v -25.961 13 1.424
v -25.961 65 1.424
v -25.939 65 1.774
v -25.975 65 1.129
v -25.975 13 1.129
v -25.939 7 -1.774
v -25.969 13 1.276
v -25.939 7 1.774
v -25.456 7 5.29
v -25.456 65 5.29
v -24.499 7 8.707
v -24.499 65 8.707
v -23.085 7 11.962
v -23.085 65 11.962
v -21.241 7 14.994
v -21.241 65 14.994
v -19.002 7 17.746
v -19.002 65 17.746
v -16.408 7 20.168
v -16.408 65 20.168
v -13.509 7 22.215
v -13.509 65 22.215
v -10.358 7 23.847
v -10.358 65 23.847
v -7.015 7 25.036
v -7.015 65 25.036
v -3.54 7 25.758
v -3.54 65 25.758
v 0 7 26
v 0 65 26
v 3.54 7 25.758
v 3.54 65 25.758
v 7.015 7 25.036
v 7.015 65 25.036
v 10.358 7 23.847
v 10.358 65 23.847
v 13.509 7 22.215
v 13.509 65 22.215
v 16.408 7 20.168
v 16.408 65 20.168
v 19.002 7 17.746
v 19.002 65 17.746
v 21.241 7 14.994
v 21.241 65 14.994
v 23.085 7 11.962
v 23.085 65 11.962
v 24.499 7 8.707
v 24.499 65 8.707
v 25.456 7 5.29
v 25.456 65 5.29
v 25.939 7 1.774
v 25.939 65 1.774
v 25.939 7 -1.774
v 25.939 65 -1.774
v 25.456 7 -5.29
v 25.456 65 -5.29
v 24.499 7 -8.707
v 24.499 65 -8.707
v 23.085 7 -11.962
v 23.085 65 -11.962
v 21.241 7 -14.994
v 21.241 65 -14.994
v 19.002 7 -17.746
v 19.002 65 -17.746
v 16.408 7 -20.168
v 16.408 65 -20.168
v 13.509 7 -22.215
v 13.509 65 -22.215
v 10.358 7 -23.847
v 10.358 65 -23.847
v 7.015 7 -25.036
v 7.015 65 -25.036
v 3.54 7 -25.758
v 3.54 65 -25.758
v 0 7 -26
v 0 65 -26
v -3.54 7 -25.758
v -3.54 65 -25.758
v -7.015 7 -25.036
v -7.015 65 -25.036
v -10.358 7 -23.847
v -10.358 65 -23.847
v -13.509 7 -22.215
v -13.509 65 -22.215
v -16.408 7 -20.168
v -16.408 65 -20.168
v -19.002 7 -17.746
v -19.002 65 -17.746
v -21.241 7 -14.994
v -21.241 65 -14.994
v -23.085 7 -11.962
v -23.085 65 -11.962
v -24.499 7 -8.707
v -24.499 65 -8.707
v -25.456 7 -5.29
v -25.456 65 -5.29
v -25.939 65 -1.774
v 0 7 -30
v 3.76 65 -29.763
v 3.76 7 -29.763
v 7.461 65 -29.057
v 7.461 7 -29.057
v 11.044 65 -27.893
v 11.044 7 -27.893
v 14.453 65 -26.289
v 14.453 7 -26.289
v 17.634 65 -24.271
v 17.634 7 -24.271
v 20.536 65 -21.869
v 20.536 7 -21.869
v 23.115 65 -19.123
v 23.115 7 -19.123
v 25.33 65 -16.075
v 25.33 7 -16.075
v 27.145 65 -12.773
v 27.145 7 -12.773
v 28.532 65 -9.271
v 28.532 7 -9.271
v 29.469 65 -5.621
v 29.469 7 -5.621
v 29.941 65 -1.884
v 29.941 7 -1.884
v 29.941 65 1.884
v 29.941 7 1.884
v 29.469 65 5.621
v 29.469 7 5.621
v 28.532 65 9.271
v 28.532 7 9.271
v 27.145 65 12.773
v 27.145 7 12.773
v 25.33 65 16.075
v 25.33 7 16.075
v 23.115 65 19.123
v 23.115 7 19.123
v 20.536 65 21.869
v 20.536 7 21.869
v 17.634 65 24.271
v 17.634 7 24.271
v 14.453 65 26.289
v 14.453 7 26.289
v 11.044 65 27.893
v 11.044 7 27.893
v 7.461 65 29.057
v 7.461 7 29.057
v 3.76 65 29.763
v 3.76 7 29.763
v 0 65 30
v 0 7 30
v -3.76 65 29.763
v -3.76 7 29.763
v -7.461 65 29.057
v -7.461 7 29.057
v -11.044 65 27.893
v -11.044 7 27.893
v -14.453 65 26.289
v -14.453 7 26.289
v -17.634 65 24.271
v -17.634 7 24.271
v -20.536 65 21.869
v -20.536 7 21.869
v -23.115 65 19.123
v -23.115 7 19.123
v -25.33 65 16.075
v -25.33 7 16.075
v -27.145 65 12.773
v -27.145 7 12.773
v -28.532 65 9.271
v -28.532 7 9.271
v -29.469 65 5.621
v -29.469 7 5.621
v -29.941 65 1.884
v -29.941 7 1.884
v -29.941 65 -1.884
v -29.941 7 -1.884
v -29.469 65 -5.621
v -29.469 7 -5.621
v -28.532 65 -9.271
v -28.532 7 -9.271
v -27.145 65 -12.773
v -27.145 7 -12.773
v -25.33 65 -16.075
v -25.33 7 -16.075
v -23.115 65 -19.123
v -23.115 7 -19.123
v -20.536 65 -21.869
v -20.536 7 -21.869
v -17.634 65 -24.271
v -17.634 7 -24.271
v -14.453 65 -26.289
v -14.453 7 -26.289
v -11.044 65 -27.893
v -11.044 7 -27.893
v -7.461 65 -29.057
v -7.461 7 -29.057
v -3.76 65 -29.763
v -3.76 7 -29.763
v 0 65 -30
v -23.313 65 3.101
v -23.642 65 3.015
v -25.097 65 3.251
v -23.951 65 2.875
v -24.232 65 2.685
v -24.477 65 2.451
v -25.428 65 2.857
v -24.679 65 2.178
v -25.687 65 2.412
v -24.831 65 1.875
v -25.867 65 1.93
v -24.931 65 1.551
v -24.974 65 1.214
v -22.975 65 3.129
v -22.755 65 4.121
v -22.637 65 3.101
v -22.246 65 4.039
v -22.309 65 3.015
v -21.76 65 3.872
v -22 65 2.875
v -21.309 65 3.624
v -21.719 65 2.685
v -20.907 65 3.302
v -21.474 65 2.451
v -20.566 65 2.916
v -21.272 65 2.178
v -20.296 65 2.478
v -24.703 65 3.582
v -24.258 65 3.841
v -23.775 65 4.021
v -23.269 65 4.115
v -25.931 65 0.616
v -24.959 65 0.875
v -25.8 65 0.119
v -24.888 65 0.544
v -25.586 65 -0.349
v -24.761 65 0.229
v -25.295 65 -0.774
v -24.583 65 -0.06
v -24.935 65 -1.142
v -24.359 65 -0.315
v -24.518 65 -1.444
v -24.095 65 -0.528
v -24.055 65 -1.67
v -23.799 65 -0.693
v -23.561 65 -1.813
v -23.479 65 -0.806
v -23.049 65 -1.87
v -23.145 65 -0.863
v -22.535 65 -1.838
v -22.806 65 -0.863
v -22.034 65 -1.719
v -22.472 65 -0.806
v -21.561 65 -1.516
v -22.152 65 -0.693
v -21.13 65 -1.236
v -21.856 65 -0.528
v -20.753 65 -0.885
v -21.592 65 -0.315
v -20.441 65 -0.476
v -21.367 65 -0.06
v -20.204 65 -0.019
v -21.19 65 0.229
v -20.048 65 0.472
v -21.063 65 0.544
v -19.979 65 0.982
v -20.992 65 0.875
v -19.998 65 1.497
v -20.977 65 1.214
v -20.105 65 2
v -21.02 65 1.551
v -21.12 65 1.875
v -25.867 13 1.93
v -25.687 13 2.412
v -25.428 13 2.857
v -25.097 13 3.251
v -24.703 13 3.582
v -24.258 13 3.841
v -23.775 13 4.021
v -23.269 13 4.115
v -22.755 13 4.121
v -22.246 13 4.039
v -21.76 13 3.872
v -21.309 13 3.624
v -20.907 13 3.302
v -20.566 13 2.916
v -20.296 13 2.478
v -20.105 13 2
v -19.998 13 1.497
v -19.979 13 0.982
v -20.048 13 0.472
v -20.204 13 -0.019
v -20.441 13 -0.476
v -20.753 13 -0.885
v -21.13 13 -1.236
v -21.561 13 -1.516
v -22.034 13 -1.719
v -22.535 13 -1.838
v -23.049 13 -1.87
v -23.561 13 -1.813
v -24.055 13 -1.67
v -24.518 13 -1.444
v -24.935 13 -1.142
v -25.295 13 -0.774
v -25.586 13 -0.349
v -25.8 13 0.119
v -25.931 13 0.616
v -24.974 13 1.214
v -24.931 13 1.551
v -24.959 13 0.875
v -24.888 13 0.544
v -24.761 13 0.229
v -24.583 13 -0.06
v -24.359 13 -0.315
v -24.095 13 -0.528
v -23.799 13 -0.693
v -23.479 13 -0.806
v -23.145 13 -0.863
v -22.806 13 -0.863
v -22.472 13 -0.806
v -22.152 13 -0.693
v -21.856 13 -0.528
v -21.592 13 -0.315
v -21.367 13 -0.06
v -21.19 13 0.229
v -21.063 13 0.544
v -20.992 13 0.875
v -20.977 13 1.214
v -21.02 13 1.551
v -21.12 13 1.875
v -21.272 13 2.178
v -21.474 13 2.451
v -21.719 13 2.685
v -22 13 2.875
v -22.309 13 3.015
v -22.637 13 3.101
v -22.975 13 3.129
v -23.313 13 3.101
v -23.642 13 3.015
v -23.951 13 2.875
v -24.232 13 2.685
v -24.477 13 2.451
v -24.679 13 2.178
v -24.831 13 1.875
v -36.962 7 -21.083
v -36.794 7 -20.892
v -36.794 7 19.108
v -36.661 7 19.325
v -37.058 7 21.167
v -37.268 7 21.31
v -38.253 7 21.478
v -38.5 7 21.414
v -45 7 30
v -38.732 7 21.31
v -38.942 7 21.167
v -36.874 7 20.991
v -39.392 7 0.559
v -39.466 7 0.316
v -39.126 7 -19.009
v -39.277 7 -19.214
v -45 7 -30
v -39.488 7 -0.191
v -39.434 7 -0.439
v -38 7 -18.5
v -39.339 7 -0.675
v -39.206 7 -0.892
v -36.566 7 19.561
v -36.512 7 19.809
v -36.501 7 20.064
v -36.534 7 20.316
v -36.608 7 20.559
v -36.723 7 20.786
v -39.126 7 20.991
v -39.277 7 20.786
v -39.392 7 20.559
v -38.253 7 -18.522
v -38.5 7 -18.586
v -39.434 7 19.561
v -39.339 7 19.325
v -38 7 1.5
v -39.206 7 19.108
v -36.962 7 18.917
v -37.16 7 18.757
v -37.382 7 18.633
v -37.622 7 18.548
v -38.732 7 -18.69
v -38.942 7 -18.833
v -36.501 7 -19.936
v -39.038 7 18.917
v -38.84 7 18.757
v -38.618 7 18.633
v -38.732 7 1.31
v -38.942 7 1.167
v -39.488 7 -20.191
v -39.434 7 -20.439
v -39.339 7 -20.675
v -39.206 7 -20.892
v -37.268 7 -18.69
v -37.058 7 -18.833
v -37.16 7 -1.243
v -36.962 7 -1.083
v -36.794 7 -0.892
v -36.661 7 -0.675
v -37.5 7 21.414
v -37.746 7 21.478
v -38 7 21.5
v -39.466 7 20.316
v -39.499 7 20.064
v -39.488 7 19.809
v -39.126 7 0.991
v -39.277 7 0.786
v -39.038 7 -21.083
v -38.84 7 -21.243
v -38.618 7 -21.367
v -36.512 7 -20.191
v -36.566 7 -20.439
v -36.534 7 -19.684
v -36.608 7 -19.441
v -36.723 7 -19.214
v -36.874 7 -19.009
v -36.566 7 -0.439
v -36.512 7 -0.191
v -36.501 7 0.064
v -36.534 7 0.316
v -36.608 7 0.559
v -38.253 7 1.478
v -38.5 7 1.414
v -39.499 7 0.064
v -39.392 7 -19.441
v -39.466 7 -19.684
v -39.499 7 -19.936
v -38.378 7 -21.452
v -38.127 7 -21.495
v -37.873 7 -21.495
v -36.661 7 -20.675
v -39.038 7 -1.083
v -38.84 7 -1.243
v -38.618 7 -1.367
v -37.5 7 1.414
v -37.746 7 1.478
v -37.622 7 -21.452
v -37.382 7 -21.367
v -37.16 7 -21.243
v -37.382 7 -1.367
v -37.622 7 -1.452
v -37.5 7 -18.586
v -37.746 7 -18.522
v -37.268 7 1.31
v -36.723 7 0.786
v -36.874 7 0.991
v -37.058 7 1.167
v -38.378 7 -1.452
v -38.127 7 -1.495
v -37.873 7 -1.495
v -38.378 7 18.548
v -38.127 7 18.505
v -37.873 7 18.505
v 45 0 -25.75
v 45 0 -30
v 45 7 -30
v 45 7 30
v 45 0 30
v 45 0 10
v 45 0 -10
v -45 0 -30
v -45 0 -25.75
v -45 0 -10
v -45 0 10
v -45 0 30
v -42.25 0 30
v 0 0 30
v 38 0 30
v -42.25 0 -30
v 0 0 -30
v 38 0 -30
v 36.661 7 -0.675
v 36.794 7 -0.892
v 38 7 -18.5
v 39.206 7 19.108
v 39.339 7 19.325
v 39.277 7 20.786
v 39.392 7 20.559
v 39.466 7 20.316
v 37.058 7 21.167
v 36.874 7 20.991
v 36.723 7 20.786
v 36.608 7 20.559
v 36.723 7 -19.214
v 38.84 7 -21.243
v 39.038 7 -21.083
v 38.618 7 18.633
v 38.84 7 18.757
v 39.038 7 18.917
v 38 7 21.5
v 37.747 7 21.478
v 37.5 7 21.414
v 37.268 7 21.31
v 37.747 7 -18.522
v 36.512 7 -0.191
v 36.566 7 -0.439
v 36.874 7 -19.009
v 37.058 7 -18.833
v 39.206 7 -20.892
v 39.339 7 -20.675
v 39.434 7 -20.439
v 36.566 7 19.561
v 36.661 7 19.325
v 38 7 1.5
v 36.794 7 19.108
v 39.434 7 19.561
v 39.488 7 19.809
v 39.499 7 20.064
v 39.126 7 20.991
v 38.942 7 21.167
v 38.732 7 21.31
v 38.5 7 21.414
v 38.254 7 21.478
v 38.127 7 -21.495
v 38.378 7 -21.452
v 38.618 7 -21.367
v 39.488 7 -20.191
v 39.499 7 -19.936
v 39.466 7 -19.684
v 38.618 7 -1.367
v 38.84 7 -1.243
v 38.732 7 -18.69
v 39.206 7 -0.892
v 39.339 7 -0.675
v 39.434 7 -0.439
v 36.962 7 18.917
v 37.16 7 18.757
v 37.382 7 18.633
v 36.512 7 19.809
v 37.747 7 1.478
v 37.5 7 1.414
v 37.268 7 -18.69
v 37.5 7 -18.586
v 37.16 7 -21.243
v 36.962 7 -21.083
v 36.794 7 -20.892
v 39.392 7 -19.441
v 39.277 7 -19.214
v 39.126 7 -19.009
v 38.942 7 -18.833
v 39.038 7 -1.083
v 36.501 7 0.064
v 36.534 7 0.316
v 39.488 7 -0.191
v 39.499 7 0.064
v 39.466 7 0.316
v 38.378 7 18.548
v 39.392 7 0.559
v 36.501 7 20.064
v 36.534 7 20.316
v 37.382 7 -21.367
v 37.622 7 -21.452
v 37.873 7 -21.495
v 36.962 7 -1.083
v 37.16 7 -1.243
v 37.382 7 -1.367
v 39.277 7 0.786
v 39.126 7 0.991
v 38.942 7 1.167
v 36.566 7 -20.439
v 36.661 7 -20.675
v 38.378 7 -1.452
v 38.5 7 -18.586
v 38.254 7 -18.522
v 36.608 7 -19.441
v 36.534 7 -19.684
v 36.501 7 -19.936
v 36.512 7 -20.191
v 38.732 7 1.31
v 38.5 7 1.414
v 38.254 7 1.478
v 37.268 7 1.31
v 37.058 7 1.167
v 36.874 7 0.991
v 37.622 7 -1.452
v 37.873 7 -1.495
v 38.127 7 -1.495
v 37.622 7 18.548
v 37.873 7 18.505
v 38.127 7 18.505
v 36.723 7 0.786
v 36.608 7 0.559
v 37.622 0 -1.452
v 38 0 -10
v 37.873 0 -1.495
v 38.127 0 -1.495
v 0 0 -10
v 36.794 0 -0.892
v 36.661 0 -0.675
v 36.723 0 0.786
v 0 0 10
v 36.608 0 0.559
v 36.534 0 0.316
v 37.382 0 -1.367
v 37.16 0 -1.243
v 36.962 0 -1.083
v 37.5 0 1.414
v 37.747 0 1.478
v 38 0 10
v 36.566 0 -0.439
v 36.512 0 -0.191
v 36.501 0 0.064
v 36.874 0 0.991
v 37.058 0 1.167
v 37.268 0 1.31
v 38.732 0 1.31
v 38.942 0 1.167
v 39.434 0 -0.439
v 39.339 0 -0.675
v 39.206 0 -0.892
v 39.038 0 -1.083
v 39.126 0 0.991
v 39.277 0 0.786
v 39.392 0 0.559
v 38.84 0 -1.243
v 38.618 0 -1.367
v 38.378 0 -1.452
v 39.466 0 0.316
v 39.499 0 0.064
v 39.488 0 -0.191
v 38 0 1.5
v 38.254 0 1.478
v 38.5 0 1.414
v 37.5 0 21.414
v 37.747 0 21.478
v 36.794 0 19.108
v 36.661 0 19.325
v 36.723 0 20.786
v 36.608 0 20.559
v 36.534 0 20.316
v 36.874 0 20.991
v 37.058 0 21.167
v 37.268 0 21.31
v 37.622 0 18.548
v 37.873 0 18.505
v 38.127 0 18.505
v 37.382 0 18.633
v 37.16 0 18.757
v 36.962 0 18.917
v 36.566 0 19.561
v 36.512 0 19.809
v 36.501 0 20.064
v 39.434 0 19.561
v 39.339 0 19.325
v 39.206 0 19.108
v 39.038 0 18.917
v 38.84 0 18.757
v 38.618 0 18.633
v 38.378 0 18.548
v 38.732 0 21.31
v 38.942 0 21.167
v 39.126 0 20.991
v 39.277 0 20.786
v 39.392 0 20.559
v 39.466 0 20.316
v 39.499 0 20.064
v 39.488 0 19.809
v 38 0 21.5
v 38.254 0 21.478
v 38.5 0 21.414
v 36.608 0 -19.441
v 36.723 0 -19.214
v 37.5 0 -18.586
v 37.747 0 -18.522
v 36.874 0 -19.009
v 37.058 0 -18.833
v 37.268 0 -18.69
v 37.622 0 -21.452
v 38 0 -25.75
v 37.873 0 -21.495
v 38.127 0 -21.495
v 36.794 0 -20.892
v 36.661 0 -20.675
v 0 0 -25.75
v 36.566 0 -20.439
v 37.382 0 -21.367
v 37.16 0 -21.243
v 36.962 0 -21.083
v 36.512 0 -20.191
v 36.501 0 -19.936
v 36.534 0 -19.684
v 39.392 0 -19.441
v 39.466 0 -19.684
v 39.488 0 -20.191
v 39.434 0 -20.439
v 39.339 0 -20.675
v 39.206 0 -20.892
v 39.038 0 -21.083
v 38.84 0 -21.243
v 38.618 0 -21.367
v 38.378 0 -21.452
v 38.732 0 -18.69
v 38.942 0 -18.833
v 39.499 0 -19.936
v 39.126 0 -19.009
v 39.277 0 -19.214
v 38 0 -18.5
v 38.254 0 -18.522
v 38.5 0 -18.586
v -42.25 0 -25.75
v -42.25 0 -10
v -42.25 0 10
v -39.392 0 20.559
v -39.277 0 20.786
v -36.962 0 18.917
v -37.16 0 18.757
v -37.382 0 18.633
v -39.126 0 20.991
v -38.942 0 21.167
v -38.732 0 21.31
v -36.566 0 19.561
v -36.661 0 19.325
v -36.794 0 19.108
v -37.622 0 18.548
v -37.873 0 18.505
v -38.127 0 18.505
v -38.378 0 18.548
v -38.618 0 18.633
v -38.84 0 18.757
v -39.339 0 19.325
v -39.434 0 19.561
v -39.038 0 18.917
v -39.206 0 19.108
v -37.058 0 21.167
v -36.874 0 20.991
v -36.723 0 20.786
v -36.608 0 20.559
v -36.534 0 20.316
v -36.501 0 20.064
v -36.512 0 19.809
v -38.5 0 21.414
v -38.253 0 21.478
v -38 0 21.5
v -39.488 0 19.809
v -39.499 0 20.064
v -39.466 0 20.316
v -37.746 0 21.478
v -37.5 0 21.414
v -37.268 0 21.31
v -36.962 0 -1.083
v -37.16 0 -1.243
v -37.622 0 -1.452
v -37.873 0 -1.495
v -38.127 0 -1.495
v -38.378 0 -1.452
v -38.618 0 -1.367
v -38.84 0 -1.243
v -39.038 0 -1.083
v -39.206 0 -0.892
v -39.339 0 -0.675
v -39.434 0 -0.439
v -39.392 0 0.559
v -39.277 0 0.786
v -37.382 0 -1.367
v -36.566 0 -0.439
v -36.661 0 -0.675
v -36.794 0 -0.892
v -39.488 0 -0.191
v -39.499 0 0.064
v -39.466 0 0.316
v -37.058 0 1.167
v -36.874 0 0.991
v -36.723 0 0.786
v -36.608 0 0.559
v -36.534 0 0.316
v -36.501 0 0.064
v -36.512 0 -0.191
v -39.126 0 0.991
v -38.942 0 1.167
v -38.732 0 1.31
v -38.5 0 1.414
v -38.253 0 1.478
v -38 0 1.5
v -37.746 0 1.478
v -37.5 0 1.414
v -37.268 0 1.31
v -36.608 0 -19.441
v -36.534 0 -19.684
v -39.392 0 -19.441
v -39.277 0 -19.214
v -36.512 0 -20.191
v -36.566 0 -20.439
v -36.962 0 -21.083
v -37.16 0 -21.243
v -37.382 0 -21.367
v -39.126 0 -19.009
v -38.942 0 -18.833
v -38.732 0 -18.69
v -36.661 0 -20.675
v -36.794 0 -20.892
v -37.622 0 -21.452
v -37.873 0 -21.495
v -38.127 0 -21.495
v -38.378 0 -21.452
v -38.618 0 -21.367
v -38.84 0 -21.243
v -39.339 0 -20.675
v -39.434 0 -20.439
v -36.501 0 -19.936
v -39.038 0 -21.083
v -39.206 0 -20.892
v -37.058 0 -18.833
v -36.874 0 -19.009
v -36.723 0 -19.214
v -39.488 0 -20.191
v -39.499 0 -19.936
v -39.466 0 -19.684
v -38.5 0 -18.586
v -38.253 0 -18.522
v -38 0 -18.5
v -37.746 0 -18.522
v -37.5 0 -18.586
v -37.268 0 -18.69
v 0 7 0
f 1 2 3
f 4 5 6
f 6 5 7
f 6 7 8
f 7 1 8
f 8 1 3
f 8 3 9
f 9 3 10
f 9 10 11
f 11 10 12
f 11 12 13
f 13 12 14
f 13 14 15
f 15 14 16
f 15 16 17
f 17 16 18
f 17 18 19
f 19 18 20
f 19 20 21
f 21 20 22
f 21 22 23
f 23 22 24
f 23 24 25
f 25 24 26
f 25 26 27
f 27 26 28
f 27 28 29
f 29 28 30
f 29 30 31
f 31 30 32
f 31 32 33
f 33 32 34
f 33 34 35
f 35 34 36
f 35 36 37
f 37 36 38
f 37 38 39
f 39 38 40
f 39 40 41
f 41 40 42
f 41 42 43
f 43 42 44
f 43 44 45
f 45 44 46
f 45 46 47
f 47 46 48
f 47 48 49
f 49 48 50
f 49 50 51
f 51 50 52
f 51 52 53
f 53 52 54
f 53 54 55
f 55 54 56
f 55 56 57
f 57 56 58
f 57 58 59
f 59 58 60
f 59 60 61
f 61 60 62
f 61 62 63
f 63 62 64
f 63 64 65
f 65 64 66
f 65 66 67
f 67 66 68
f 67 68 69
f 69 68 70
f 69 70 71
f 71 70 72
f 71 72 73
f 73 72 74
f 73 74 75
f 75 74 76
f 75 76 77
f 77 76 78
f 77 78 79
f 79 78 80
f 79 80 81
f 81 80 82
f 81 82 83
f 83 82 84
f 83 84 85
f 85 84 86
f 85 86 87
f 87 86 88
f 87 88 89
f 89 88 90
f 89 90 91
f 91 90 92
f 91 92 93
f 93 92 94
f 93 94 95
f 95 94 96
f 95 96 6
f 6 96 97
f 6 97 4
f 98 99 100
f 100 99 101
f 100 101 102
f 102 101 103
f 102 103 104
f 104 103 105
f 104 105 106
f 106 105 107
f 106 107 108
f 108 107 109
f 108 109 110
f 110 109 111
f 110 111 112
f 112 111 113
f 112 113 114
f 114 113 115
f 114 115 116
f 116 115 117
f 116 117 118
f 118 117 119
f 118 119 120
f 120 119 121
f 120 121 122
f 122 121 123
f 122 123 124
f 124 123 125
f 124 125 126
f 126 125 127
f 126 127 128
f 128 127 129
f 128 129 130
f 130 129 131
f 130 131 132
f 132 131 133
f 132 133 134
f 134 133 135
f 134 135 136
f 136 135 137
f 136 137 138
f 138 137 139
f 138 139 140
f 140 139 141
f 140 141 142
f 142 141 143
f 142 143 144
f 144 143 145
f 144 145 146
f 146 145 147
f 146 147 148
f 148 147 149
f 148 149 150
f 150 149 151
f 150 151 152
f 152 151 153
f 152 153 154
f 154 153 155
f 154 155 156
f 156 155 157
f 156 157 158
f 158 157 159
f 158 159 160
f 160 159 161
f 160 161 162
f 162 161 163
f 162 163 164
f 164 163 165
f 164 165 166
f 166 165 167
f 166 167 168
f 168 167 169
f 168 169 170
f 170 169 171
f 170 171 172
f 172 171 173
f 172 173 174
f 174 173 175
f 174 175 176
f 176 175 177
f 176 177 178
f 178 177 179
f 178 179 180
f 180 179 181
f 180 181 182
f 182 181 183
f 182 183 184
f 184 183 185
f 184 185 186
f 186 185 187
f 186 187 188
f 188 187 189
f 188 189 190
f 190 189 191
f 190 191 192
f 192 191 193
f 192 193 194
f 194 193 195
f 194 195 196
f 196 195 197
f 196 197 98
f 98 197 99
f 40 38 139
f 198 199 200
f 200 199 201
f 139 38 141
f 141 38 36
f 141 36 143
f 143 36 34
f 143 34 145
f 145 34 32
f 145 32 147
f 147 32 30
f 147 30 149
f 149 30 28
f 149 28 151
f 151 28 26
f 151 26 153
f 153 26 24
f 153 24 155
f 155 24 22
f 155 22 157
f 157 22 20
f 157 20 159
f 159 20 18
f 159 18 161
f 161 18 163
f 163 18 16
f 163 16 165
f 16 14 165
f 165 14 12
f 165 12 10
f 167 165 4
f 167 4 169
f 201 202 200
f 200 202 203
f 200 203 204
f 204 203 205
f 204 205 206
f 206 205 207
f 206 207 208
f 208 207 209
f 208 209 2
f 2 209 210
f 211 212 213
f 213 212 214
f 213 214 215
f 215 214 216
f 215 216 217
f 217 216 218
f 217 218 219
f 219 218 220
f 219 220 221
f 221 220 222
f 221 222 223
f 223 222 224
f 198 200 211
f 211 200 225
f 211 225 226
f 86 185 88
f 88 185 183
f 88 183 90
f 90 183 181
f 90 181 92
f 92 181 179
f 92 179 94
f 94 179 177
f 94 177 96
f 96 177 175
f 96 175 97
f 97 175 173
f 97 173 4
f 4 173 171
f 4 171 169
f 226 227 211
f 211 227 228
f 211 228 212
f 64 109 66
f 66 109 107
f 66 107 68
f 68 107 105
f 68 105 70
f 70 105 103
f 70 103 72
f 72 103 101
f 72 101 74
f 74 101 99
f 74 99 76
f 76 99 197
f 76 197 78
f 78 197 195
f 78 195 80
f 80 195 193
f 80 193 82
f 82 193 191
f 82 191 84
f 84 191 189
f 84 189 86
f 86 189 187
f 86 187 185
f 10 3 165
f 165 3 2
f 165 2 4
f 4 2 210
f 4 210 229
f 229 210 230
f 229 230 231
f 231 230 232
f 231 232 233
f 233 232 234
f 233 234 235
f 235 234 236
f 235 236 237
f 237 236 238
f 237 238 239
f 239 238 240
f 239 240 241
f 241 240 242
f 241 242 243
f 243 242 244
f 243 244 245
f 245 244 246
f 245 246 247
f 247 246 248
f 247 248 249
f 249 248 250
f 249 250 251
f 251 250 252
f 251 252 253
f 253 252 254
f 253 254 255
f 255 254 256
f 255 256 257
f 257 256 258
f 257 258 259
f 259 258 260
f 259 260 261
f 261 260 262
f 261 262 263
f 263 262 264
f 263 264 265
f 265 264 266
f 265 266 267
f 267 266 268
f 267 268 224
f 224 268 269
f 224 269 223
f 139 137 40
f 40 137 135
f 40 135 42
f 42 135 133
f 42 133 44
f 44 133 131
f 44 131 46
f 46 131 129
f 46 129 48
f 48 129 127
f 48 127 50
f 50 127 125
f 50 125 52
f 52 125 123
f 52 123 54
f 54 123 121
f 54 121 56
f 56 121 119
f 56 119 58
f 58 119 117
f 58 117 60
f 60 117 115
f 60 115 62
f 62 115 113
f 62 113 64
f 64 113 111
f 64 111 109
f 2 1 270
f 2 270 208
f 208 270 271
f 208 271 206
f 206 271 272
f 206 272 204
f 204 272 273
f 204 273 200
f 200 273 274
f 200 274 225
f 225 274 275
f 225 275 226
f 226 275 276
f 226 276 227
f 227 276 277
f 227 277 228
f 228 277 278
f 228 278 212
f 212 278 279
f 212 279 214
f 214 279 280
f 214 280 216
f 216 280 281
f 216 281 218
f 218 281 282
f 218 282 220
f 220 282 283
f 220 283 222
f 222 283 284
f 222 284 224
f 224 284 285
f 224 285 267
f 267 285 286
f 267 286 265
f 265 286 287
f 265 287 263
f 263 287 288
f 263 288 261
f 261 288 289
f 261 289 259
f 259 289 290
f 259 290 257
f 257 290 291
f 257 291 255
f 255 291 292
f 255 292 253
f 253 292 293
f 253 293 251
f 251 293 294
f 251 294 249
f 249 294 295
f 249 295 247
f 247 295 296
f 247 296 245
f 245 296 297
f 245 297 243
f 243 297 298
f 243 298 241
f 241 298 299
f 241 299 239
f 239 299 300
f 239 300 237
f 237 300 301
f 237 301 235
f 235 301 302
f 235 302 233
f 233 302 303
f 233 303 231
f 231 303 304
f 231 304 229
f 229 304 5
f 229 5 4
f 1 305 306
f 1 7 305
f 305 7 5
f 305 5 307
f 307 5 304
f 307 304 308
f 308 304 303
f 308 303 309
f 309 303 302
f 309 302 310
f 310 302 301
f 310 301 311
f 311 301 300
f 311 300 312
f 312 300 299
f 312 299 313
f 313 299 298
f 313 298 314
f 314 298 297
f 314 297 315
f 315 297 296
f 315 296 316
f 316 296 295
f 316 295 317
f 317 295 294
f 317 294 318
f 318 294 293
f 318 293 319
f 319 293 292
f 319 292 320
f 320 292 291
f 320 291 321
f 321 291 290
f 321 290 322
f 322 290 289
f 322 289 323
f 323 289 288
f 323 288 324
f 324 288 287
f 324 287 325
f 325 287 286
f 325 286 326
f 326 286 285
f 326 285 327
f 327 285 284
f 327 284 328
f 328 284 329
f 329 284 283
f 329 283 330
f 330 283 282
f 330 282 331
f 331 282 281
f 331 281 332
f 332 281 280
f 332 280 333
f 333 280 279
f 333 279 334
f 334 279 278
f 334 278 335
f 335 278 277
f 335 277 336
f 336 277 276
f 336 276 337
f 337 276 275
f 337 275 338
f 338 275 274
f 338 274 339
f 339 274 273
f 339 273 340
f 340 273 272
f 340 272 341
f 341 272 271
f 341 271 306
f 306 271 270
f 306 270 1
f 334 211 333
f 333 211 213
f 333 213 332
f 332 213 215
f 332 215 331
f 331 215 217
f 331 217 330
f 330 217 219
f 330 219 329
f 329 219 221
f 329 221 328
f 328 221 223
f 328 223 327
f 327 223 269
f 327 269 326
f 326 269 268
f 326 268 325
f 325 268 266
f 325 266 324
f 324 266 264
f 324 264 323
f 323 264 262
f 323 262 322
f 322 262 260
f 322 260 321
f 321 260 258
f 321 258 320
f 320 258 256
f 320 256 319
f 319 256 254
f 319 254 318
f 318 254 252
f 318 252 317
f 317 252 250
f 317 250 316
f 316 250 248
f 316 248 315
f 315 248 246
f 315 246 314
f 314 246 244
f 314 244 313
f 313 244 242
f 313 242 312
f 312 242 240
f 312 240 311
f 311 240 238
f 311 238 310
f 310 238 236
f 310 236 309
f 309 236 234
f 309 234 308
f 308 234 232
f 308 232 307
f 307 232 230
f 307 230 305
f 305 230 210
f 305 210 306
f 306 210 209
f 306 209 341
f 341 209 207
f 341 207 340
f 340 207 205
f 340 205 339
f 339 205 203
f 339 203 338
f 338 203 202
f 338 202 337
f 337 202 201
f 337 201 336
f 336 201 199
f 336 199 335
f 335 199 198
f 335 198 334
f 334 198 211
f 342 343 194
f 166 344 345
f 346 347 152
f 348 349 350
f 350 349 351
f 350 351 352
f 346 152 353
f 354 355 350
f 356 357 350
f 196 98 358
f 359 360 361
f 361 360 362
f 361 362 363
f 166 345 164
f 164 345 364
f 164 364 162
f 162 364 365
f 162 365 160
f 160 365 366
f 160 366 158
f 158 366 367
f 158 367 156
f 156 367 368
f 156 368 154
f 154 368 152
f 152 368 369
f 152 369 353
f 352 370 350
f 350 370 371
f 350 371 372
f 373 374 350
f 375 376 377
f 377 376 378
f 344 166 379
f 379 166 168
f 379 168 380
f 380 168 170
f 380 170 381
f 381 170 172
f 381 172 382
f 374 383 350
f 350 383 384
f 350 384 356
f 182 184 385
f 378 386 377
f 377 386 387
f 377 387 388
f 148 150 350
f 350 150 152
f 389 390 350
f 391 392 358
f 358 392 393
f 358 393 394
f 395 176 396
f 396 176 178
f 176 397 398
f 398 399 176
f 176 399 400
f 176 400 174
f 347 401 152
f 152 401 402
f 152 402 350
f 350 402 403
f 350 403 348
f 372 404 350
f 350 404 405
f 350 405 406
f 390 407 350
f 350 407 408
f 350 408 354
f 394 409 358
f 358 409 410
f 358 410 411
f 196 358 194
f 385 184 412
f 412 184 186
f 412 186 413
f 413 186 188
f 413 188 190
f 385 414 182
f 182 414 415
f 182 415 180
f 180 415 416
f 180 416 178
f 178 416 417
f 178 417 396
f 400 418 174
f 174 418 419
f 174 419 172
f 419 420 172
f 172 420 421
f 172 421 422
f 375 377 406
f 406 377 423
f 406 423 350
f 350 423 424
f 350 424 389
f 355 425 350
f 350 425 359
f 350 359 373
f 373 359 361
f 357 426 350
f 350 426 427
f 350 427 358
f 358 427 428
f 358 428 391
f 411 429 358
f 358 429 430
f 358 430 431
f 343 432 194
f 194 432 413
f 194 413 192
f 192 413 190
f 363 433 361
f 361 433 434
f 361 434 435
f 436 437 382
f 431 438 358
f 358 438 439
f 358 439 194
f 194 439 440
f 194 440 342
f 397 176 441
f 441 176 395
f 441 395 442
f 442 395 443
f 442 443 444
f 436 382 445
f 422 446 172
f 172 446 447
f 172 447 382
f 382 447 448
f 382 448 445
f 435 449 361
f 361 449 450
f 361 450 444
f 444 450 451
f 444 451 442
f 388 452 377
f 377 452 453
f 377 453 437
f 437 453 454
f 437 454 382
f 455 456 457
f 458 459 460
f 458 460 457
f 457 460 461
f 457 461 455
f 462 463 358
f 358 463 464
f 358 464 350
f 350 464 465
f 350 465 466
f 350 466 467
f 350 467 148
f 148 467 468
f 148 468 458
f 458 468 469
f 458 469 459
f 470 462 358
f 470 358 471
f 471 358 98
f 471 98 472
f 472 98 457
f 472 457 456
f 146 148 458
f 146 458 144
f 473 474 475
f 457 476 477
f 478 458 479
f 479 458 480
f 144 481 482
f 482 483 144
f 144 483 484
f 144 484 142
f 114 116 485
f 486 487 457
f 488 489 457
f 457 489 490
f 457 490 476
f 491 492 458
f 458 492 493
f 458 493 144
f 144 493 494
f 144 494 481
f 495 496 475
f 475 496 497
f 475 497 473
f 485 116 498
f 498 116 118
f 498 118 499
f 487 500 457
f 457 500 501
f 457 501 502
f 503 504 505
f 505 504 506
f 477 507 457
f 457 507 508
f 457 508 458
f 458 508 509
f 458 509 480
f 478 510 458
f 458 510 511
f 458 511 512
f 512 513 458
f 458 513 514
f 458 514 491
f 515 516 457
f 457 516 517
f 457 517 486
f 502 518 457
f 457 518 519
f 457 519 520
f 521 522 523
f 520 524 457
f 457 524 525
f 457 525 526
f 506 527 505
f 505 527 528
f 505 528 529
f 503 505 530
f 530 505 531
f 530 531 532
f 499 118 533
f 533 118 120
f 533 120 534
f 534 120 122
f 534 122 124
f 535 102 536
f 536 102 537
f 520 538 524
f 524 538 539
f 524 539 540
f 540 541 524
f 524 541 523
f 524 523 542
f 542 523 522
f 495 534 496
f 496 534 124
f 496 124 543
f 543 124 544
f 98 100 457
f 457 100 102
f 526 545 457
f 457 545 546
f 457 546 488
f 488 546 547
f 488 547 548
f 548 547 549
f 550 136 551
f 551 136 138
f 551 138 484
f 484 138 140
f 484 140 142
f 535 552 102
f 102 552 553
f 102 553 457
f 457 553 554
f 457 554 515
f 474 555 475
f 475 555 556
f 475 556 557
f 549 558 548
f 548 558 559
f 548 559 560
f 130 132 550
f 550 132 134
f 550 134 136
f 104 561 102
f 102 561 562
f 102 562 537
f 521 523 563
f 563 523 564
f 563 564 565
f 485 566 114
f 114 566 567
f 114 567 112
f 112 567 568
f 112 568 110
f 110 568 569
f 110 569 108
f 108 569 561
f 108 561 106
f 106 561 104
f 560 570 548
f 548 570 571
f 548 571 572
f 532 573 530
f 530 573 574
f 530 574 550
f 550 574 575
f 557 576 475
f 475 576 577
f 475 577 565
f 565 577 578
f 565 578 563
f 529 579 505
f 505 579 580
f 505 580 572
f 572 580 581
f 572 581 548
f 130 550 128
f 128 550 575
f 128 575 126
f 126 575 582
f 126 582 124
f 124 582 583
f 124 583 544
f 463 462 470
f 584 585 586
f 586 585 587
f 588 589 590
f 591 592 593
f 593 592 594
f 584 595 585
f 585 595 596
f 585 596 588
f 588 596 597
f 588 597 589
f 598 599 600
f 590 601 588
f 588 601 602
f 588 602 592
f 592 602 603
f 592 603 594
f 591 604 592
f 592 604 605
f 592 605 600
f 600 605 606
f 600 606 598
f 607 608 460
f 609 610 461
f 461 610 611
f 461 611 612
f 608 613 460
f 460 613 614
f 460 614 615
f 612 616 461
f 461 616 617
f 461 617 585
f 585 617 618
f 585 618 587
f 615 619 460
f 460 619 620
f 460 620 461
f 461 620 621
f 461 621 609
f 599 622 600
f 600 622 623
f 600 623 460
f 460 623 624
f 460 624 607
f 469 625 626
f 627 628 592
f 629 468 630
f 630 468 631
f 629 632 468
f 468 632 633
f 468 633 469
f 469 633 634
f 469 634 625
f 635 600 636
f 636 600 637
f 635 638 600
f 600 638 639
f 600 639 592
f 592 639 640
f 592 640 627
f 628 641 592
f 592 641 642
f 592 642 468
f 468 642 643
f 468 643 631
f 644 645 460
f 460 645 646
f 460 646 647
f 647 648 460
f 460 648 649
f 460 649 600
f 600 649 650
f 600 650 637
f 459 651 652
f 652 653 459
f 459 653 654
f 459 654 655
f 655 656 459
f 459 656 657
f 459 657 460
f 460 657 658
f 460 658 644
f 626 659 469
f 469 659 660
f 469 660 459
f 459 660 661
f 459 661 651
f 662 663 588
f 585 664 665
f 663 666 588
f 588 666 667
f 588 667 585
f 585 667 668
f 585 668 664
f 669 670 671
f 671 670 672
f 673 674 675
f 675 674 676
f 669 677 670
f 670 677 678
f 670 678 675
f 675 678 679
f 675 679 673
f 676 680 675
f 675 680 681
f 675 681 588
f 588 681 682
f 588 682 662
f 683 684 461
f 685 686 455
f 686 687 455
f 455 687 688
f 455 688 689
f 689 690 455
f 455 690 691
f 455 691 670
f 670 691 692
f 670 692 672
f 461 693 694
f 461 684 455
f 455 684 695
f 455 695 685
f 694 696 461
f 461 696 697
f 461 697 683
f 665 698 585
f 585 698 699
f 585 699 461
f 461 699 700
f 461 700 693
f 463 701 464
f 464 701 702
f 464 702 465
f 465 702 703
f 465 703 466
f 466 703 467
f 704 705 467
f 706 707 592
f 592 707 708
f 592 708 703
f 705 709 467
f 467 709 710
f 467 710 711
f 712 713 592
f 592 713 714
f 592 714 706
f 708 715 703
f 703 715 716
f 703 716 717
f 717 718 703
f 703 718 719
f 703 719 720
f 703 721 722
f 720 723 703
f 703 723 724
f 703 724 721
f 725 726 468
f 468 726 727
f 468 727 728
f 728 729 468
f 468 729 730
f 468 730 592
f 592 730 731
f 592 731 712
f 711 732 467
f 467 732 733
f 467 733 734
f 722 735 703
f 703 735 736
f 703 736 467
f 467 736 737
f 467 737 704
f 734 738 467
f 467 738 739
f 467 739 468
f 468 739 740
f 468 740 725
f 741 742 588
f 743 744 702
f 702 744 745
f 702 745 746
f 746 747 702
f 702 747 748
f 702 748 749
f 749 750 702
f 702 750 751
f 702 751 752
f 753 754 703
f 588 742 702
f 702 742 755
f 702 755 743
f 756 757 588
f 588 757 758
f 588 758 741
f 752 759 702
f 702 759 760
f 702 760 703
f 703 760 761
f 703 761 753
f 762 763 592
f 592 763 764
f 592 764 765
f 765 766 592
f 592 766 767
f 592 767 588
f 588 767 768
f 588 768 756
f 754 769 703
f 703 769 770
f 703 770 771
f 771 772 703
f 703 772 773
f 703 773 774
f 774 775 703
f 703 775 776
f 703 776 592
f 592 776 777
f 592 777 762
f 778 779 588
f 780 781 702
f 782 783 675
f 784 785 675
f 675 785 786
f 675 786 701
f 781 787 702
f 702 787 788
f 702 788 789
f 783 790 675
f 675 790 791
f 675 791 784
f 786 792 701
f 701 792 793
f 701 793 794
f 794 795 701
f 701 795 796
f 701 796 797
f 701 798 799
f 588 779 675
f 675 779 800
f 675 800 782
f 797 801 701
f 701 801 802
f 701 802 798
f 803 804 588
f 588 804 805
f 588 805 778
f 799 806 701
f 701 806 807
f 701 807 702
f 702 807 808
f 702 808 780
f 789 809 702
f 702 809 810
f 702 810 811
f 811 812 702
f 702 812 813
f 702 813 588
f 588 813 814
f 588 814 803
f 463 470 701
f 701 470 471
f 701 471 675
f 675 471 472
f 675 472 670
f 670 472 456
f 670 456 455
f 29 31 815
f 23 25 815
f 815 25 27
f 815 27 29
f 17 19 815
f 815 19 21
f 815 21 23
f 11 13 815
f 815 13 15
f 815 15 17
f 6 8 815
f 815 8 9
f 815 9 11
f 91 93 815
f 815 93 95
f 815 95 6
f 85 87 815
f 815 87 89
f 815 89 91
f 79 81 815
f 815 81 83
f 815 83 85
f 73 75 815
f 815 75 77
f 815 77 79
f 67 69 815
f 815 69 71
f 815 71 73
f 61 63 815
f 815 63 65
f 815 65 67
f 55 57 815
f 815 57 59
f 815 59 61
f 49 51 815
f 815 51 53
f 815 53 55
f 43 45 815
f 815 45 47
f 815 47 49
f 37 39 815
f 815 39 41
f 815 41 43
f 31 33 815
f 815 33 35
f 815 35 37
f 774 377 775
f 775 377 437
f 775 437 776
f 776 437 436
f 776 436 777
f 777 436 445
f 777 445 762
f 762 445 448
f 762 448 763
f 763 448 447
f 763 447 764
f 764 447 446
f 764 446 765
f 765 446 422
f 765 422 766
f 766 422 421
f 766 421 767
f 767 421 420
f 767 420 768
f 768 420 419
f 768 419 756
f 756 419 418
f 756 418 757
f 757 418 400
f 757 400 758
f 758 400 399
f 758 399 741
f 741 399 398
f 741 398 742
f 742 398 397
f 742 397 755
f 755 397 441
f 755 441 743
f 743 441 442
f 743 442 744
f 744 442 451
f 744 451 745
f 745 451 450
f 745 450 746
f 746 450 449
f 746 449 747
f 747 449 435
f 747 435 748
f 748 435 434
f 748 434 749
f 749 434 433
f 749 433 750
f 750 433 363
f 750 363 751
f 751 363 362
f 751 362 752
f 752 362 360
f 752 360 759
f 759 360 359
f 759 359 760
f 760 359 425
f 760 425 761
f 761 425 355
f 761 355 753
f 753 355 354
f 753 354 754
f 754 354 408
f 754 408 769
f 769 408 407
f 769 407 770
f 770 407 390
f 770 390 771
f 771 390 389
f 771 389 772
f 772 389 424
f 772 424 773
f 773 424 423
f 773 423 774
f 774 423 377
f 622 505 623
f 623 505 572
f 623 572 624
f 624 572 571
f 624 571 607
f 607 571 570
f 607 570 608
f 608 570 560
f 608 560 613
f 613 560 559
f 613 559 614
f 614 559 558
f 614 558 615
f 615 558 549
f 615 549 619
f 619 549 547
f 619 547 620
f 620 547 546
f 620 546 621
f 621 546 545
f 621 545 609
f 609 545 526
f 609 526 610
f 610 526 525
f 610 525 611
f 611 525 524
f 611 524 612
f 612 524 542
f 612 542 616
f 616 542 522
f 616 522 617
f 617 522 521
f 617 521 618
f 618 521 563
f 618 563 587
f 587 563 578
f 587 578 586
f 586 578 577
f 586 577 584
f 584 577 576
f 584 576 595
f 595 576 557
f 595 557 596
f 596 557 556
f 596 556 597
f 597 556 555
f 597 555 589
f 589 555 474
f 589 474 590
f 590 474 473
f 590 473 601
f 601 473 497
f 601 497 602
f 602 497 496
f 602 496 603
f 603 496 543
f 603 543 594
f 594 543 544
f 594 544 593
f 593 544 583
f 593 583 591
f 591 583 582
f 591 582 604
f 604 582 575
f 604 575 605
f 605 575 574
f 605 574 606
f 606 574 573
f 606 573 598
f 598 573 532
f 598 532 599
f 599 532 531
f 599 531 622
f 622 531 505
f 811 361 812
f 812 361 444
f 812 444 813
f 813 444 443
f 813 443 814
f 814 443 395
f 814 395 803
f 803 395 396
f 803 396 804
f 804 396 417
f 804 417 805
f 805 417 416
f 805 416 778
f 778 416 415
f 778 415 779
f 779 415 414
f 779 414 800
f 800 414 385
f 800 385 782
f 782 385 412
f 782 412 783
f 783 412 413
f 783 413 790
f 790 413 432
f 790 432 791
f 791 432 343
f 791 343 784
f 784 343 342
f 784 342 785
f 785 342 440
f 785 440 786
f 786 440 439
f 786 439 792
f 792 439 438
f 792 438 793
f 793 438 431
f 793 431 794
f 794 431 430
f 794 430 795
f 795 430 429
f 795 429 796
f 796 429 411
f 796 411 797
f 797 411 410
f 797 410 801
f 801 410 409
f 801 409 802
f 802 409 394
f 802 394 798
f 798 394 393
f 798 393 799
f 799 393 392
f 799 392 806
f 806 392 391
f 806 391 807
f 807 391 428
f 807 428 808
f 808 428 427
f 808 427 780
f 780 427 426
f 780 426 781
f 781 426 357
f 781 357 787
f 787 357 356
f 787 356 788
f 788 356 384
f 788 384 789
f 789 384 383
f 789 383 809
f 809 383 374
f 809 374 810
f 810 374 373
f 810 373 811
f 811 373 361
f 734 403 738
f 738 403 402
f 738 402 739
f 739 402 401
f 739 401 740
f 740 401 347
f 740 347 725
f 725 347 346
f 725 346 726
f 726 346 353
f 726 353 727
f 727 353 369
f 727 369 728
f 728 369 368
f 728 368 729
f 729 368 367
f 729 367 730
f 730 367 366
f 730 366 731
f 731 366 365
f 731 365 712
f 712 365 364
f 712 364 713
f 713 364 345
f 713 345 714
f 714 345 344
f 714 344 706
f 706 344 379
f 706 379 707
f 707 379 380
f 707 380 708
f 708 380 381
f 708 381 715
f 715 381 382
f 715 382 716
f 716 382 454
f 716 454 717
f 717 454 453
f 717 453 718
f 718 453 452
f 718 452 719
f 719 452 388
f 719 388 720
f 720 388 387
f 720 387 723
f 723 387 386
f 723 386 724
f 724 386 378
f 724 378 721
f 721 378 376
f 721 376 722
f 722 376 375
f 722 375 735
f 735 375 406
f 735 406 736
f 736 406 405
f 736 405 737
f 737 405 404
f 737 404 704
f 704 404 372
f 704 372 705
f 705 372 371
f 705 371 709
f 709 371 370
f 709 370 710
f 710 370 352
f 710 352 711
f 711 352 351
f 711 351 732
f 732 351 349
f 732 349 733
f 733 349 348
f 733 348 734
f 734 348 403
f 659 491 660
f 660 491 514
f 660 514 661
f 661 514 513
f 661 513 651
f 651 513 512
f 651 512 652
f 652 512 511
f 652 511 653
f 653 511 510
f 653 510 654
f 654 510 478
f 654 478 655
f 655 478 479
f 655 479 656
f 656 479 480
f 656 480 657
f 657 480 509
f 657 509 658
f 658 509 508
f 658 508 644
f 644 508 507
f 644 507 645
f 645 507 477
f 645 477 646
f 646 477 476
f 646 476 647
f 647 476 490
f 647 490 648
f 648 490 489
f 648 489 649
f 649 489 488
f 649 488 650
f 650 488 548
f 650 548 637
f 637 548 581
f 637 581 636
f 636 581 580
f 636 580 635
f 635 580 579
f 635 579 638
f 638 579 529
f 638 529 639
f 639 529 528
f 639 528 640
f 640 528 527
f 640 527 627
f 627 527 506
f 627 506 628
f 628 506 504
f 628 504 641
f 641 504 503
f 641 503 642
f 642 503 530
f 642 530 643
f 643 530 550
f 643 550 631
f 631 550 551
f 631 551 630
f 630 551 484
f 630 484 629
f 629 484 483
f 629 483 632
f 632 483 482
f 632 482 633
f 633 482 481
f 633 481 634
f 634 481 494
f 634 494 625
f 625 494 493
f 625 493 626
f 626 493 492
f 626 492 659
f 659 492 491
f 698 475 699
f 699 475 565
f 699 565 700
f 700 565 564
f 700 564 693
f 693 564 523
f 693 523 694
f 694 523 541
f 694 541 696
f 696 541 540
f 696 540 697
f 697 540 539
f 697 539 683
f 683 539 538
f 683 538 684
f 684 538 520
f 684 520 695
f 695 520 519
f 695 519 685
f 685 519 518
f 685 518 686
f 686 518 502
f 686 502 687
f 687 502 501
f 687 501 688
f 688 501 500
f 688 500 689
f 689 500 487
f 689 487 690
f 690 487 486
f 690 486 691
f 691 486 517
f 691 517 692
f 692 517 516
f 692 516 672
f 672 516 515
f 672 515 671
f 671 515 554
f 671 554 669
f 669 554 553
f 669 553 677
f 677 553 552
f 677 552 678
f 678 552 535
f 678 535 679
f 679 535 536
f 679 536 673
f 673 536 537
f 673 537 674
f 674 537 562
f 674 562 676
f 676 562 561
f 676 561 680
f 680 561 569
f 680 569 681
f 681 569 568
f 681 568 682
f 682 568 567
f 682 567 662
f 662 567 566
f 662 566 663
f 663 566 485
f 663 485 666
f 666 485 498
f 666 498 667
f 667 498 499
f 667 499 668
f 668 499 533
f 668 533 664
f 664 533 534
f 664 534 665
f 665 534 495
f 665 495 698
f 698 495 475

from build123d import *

# Parameters (mm, degrees)
IZIM1_R                     = 30
Y_KSEKLIK_EKSTR_ZYON1_DEPTH = 65
IZIM2_R                     = 26
KES_EKSTR_ZYON1_DEPTH       = 62
Y_KSEKLIK_EKSTR_ZYON4_START = 10
IZIM3_R                     = 3
Y_KSEKLIK_EKSTR_ZYON4_DEPTH = 52
IZIM4_R                     = 2
KES_EKSTR_ZYON2_DEPTH       = 52
IZIM5_W                     = 90
IZIM5_H                     = 60
Y_KSEKLIK_EKSTR_ZYON5_DEPTH = 7
IZIM6_R                     = 1.5
KES_EKSTR_ZYON3_DEPTH       = 10
IZIM7_R                     = 1.5
KES_EKSTR_ZYON4_DEPTH       = 10


with BuildPart() as part:
    # Çizim1 → Yükseklik-Ekstrüzyon1 (new body)
    with BuildSketch(Plane(origin=(0, 0, 0), x_dir=(1, 0, 0), z_dir=(0, 1, 0))):
        Circle(IZIM1_R)
    extrude(amount=Y_KSEKLIK_EKSTR_ZYON1_DEPTH)

    # Çizim2 → Kes-Ekstrüzyon1 (cut)
    with BuildSketch(Plane(origin=(0, 65, 0), x_dir=(1, 0, 0), z_dir=(0, 1, 0))):
        Circle(IZIM2_R)
    extrude(amount=-KES_EKSTR_ZYON1_DEPTH, mode=Mode.SUBTRACT)

    # Çizim3 → Yükseklik-Ekstrüzyon4 (add)
    with BuildSketch(Plane(origin=(0, 3, 0), x_dir=(1, 0, 0), z_dir=(0, 1, 0)).offset(Y_KSEKLIK_EKSTR_ZYON4_START)):
        with Locations((-22.975460117, -1.129367831)):
            Circle(IZIM3_R)
    extrude(amount=Y_KSEKLIK_EKSTR_ZYON4_DEPTH)

    # Çizim4 → Kes-Ekstrüzyon2 (cut)
    with BuildSketch(Plane(origin=(0, 65, 0), x_dir=(1, 0, 0), z_dir=(0, 1, 0))):
        with Locations((-22.975460117, -1.129367831)):
            Circle(IZIM4_R)
    extrude(amount=-KES_EKSTR_ZYON2_DEPTH, mode=Mode.SUBTRACT)

    # Çizim5 → Yükseklik-Ekstrüzyon5 (add)
    with BuildSketch(Plane.XZ):
        Rectangle(IZIM5_W, IZIM5_H)
    extrude(amount=-Y_KSEKLIK_EKSTR_ZYON5_DEPTH)

    # Çizim6 → Kes-Ekstrüzyon3 (cut)
    with BuildSketch(Plane(origin=(0, 7, 0), x_dir=(1, 0, 0), z_dir=(0, 1, 0))):
        with Locations((38, 0)):
            Circle(IZIM6_R)
        with Locations((-38, 0)):
            Circle(IZIM6_R)
    extrude(amount=-KES_EKSTR_ZYON3_DEPTH, mode=Mode.SUBTRACT)

    # Çizim7 → Kes-Ekstrüzyon4 (cut)
    with BuildSketch(Plane(origin=(0, 7, 0), x_dir=(1, 0, 0), z_dir=(0, 1, 0))):
        with Locations((-38, 20)):
            Circle(IZIM7_R)
        with Locations((-38, -20)):
            Circle(IZIM7_R)
        with Locations((38, -20)):
            Circle(IZIM7_R)
        with Locations((38, 20)):
            Circle(IZIM7_R)
    extrude(amount=-KES_EKSTR_ZYON4_DEPTH, mode=Mode.SUBTRACT)


solid = part.part
